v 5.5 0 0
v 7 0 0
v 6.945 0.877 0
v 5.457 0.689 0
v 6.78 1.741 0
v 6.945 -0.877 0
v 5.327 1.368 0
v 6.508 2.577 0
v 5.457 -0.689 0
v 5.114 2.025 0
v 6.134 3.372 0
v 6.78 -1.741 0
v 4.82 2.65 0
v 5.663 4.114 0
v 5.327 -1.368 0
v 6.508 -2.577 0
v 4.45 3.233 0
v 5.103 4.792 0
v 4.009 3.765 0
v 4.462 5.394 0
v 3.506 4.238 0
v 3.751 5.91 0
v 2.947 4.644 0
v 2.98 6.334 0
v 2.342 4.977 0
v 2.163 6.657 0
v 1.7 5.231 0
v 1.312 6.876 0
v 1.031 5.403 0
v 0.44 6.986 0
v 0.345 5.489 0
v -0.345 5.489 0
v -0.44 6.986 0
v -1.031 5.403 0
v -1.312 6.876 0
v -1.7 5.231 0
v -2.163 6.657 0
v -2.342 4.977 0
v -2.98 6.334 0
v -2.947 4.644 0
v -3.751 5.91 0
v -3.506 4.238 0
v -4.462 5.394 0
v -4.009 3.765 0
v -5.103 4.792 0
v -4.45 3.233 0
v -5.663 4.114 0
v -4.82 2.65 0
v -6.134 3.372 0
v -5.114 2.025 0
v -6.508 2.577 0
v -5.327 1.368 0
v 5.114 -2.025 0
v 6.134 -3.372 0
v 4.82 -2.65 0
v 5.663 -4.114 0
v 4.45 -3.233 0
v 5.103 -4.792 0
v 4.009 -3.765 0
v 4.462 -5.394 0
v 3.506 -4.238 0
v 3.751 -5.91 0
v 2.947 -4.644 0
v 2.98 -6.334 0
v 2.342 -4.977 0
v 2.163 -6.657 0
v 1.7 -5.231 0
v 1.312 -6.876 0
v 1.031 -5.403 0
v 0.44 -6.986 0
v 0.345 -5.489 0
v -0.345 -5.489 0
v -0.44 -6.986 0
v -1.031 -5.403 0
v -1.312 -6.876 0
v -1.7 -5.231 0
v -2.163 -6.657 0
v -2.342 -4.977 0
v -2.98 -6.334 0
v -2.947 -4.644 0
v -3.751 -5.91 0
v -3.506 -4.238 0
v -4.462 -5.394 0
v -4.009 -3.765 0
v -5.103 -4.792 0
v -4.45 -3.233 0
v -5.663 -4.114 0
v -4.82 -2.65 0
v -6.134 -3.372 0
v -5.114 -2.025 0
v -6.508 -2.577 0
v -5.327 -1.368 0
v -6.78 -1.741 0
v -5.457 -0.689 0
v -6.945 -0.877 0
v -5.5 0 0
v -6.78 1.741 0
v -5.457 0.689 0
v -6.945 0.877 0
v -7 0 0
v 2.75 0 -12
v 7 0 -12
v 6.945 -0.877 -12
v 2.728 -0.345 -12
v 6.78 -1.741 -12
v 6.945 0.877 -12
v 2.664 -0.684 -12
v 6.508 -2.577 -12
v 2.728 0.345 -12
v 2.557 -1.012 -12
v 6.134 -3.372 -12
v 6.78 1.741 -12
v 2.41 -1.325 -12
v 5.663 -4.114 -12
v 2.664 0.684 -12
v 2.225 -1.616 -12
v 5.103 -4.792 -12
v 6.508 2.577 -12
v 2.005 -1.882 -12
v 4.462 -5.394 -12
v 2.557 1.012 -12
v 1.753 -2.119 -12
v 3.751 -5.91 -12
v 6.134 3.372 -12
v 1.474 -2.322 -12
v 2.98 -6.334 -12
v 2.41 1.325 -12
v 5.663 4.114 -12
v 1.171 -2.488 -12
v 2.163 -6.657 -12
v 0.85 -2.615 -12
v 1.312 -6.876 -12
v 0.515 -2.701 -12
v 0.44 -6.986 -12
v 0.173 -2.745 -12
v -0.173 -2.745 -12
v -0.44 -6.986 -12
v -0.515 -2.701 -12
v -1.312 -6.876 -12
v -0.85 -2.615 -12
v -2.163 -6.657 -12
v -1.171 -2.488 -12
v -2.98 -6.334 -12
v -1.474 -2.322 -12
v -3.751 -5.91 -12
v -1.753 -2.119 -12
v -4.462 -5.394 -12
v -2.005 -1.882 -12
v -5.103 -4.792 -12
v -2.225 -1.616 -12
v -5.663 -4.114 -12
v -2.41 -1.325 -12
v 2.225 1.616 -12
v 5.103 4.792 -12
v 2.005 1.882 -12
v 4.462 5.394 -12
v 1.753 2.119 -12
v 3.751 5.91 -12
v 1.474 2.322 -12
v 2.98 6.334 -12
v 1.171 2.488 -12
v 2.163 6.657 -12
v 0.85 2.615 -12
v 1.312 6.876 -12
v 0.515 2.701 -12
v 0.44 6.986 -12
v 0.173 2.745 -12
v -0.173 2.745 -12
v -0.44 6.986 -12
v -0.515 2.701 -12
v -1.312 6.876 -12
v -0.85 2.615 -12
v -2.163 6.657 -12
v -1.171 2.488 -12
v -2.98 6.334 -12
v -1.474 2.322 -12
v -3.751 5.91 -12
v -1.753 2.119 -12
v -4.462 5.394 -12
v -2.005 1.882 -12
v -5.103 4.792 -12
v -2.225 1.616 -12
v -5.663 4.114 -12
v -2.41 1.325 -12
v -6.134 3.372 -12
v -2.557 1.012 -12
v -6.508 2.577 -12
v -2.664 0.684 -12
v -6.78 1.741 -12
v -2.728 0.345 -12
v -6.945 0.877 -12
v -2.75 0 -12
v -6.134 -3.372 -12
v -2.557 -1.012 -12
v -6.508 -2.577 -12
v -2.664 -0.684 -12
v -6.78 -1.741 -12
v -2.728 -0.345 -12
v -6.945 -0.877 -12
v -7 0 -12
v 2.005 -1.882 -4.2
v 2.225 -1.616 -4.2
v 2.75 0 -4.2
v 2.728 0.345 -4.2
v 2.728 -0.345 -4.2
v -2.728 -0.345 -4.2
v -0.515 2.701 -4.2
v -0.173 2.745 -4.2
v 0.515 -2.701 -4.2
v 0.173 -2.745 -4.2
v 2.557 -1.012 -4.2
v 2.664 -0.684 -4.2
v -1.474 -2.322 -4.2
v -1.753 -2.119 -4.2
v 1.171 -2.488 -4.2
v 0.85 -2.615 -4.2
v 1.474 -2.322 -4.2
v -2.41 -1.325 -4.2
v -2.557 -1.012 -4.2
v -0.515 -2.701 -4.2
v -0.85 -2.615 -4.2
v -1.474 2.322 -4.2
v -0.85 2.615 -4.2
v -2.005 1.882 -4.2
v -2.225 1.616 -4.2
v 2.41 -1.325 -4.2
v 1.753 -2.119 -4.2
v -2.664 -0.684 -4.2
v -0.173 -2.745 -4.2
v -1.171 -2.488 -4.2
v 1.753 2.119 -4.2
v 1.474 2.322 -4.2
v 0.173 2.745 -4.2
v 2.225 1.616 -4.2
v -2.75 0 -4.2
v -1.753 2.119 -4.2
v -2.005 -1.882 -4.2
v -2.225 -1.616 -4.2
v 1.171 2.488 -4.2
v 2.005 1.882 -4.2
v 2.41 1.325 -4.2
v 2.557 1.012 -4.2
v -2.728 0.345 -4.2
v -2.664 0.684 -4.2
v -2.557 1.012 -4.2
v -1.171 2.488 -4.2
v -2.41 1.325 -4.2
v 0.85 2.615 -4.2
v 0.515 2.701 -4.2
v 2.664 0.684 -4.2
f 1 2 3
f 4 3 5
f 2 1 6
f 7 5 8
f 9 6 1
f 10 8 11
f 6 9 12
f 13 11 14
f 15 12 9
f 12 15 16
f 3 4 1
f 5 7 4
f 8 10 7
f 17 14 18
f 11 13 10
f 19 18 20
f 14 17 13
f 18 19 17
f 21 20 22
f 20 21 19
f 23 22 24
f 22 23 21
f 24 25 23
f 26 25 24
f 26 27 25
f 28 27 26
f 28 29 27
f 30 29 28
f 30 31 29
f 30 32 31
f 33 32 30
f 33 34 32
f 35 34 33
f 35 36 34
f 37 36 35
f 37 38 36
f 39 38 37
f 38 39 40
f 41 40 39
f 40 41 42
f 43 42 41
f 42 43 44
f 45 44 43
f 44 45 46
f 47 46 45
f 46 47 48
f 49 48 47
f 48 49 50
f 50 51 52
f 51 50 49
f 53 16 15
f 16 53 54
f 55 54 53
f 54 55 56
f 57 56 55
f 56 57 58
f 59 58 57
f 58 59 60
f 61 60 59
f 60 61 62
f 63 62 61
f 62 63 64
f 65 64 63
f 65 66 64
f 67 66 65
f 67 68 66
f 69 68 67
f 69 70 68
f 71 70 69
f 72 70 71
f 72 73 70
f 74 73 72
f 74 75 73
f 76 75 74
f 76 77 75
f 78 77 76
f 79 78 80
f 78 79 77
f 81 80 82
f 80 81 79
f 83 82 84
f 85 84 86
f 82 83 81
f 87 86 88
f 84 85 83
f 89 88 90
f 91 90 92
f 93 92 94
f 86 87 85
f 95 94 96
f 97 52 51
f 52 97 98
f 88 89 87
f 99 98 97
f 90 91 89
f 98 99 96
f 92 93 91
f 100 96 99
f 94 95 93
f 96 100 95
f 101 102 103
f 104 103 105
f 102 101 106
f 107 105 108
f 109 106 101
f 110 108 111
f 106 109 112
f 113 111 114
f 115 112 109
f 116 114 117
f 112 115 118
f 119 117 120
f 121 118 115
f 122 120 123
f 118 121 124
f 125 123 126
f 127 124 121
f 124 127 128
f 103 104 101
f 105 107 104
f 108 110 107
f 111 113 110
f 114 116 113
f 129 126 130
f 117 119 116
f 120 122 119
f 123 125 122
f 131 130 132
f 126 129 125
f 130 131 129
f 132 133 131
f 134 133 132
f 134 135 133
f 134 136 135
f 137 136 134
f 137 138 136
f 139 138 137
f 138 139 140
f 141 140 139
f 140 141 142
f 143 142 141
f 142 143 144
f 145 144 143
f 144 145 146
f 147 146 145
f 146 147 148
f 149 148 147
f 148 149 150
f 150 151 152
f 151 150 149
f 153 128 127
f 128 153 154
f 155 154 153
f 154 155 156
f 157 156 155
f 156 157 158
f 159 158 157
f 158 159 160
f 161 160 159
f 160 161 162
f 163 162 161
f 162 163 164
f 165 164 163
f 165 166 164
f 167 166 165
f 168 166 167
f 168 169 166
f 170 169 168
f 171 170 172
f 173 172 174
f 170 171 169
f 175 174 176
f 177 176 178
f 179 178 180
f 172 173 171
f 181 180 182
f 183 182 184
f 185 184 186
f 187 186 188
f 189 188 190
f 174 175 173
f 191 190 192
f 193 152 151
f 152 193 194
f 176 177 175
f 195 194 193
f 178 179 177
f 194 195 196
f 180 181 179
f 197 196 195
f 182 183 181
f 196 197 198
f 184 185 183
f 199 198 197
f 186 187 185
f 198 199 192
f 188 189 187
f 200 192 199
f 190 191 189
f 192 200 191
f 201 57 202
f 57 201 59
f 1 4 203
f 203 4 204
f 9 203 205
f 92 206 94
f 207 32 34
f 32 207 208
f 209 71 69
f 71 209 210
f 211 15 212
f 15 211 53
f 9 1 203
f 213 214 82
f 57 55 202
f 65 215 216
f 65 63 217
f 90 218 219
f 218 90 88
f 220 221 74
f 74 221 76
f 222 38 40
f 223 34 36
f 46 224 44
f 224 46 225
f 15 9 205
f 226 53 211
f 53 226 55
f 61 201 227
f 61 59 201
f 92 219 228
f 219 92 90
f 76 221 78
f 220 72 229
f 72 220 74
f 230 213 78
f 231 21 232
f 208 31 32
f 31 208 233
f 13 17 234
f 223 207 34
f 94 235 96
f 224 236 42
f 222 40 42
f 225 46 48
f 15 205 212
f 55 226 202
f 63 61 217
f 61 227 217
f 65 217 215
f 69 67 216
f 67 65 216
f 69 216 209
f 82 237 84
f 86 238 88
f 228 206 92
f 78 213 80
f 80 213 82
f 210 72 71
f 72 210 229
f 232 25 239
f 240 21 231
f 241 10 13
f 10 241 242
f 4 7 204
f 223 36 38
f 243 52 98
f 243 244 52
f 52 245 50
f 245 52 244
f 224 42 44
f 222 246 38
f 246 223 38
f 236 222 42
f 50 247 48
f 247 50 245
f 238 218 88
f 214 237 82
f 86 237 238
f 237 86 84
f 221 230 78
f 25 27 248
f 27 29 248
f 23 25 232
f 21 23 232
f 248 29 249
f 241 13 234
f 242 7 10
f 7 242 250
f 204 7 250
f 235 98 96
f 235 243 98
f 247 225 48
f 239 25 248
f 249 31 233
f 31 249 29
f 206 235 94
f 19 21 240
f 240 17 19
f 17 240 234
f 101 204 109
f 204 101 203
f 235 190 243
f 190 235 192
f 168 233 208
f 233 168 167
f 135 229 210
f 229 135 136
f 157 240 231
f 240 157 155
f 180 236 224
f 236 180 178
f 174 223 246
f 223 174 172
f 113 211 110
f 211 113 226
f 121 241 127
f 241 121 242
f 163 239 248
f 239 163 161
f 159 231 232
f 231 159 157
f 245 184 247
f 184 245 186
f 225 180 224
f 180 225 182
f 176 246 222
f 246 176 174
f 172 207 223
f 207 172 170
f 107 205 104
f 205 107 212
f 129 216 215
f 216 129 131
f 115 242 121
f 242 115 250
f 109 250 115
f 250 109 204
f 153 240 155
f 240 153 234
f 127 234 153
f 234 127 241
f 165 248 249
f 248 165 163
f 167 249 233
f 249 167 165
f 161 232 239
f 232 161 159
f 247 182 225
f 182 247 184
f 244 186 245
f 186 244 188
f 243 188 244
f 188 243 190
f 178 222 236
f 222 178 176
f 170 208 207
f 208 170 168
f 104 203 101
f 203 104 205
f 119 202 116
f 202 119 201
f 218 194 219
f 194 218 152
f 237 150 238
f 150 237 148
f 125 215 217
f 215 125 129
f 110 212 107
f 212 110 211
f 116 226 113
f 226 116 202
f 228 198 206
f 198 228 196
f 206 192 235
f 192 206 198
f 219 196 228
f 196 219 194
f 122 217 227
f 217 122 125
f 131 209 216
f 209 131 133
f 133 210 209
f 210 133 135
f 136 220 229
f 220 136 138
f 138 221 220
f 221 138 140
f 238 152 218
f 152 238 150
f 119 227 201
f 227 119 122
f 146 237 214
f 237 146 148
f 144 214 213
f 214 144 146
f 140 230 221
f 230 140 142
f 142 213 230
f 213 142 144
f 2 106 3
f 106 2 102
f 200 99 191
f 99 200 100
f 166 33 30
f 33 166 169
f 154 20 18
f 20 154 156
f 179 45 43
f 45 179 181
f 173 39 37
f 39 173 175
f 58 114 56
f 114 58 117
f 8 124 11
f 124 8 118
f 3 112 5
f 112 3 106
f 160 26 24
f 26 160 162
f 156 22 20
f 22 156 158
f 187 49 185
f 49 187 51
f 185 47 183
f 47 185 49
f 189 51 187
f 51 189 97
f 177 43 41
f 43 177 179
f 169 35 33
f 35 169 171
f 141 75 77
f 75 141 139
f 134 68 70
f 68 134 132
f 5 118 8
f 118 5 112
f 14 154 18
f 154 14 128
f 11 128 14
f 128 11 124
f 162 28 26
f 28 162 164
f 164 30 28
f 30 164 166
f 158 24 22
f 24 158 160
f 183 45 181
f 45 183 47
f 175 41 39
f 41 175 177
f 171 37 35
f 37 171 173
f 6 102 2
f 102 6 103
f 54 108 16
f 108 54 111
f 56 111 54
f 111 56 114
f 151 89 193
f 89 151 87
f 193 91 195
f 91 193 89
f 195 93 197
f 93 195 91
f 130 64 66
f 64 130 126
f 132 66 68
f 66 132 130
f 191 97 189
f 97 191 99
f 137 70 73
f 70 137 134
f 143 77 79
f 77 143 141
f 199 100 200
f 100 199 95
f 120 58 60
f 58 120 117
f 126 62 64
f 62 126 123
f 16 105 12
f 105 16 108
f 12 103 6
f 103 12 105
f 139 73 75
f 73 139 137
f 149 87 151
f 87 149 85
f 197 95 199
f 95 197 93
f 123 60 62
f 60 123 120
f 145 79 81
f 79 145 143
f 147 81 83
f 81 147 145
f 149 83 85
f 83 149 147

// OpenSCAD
$fn = 50;


difference() {
	union() {
		translate(v = [0, 0, -12.0000000000]) {
			cylinder(h = 12, r = 7.0000000000);
		}
		cylinder(h = 0, r = 10.0000000000);
	}
	union() {
		translate(v = [0, 0, 0]) {
			rotate(a = [0, 0, 0]) {
				difference() {
					union() {
						#translate(v = [0, 0, -12.0000000000]) {
							cylinder(h = 12, r = 2.2500000000);
						}
						#translate(v = [0, 0, -4.2000000000]) {
							cylinder(h = 4.2000000000, r1 = 2.7500000000, r2 = 5.5000000000);
						}
						#translate(v = [0, 0, -12.0000000000]) {
							cylinder(h = 12, r = 2.7500000000);
						}
						#translate(v = [0, 0, -12.0000000000]) {
							cylinder(h = 12, r = 2.2500000000);
						}
					}
					union();
				}
			}
		}
	}
}
